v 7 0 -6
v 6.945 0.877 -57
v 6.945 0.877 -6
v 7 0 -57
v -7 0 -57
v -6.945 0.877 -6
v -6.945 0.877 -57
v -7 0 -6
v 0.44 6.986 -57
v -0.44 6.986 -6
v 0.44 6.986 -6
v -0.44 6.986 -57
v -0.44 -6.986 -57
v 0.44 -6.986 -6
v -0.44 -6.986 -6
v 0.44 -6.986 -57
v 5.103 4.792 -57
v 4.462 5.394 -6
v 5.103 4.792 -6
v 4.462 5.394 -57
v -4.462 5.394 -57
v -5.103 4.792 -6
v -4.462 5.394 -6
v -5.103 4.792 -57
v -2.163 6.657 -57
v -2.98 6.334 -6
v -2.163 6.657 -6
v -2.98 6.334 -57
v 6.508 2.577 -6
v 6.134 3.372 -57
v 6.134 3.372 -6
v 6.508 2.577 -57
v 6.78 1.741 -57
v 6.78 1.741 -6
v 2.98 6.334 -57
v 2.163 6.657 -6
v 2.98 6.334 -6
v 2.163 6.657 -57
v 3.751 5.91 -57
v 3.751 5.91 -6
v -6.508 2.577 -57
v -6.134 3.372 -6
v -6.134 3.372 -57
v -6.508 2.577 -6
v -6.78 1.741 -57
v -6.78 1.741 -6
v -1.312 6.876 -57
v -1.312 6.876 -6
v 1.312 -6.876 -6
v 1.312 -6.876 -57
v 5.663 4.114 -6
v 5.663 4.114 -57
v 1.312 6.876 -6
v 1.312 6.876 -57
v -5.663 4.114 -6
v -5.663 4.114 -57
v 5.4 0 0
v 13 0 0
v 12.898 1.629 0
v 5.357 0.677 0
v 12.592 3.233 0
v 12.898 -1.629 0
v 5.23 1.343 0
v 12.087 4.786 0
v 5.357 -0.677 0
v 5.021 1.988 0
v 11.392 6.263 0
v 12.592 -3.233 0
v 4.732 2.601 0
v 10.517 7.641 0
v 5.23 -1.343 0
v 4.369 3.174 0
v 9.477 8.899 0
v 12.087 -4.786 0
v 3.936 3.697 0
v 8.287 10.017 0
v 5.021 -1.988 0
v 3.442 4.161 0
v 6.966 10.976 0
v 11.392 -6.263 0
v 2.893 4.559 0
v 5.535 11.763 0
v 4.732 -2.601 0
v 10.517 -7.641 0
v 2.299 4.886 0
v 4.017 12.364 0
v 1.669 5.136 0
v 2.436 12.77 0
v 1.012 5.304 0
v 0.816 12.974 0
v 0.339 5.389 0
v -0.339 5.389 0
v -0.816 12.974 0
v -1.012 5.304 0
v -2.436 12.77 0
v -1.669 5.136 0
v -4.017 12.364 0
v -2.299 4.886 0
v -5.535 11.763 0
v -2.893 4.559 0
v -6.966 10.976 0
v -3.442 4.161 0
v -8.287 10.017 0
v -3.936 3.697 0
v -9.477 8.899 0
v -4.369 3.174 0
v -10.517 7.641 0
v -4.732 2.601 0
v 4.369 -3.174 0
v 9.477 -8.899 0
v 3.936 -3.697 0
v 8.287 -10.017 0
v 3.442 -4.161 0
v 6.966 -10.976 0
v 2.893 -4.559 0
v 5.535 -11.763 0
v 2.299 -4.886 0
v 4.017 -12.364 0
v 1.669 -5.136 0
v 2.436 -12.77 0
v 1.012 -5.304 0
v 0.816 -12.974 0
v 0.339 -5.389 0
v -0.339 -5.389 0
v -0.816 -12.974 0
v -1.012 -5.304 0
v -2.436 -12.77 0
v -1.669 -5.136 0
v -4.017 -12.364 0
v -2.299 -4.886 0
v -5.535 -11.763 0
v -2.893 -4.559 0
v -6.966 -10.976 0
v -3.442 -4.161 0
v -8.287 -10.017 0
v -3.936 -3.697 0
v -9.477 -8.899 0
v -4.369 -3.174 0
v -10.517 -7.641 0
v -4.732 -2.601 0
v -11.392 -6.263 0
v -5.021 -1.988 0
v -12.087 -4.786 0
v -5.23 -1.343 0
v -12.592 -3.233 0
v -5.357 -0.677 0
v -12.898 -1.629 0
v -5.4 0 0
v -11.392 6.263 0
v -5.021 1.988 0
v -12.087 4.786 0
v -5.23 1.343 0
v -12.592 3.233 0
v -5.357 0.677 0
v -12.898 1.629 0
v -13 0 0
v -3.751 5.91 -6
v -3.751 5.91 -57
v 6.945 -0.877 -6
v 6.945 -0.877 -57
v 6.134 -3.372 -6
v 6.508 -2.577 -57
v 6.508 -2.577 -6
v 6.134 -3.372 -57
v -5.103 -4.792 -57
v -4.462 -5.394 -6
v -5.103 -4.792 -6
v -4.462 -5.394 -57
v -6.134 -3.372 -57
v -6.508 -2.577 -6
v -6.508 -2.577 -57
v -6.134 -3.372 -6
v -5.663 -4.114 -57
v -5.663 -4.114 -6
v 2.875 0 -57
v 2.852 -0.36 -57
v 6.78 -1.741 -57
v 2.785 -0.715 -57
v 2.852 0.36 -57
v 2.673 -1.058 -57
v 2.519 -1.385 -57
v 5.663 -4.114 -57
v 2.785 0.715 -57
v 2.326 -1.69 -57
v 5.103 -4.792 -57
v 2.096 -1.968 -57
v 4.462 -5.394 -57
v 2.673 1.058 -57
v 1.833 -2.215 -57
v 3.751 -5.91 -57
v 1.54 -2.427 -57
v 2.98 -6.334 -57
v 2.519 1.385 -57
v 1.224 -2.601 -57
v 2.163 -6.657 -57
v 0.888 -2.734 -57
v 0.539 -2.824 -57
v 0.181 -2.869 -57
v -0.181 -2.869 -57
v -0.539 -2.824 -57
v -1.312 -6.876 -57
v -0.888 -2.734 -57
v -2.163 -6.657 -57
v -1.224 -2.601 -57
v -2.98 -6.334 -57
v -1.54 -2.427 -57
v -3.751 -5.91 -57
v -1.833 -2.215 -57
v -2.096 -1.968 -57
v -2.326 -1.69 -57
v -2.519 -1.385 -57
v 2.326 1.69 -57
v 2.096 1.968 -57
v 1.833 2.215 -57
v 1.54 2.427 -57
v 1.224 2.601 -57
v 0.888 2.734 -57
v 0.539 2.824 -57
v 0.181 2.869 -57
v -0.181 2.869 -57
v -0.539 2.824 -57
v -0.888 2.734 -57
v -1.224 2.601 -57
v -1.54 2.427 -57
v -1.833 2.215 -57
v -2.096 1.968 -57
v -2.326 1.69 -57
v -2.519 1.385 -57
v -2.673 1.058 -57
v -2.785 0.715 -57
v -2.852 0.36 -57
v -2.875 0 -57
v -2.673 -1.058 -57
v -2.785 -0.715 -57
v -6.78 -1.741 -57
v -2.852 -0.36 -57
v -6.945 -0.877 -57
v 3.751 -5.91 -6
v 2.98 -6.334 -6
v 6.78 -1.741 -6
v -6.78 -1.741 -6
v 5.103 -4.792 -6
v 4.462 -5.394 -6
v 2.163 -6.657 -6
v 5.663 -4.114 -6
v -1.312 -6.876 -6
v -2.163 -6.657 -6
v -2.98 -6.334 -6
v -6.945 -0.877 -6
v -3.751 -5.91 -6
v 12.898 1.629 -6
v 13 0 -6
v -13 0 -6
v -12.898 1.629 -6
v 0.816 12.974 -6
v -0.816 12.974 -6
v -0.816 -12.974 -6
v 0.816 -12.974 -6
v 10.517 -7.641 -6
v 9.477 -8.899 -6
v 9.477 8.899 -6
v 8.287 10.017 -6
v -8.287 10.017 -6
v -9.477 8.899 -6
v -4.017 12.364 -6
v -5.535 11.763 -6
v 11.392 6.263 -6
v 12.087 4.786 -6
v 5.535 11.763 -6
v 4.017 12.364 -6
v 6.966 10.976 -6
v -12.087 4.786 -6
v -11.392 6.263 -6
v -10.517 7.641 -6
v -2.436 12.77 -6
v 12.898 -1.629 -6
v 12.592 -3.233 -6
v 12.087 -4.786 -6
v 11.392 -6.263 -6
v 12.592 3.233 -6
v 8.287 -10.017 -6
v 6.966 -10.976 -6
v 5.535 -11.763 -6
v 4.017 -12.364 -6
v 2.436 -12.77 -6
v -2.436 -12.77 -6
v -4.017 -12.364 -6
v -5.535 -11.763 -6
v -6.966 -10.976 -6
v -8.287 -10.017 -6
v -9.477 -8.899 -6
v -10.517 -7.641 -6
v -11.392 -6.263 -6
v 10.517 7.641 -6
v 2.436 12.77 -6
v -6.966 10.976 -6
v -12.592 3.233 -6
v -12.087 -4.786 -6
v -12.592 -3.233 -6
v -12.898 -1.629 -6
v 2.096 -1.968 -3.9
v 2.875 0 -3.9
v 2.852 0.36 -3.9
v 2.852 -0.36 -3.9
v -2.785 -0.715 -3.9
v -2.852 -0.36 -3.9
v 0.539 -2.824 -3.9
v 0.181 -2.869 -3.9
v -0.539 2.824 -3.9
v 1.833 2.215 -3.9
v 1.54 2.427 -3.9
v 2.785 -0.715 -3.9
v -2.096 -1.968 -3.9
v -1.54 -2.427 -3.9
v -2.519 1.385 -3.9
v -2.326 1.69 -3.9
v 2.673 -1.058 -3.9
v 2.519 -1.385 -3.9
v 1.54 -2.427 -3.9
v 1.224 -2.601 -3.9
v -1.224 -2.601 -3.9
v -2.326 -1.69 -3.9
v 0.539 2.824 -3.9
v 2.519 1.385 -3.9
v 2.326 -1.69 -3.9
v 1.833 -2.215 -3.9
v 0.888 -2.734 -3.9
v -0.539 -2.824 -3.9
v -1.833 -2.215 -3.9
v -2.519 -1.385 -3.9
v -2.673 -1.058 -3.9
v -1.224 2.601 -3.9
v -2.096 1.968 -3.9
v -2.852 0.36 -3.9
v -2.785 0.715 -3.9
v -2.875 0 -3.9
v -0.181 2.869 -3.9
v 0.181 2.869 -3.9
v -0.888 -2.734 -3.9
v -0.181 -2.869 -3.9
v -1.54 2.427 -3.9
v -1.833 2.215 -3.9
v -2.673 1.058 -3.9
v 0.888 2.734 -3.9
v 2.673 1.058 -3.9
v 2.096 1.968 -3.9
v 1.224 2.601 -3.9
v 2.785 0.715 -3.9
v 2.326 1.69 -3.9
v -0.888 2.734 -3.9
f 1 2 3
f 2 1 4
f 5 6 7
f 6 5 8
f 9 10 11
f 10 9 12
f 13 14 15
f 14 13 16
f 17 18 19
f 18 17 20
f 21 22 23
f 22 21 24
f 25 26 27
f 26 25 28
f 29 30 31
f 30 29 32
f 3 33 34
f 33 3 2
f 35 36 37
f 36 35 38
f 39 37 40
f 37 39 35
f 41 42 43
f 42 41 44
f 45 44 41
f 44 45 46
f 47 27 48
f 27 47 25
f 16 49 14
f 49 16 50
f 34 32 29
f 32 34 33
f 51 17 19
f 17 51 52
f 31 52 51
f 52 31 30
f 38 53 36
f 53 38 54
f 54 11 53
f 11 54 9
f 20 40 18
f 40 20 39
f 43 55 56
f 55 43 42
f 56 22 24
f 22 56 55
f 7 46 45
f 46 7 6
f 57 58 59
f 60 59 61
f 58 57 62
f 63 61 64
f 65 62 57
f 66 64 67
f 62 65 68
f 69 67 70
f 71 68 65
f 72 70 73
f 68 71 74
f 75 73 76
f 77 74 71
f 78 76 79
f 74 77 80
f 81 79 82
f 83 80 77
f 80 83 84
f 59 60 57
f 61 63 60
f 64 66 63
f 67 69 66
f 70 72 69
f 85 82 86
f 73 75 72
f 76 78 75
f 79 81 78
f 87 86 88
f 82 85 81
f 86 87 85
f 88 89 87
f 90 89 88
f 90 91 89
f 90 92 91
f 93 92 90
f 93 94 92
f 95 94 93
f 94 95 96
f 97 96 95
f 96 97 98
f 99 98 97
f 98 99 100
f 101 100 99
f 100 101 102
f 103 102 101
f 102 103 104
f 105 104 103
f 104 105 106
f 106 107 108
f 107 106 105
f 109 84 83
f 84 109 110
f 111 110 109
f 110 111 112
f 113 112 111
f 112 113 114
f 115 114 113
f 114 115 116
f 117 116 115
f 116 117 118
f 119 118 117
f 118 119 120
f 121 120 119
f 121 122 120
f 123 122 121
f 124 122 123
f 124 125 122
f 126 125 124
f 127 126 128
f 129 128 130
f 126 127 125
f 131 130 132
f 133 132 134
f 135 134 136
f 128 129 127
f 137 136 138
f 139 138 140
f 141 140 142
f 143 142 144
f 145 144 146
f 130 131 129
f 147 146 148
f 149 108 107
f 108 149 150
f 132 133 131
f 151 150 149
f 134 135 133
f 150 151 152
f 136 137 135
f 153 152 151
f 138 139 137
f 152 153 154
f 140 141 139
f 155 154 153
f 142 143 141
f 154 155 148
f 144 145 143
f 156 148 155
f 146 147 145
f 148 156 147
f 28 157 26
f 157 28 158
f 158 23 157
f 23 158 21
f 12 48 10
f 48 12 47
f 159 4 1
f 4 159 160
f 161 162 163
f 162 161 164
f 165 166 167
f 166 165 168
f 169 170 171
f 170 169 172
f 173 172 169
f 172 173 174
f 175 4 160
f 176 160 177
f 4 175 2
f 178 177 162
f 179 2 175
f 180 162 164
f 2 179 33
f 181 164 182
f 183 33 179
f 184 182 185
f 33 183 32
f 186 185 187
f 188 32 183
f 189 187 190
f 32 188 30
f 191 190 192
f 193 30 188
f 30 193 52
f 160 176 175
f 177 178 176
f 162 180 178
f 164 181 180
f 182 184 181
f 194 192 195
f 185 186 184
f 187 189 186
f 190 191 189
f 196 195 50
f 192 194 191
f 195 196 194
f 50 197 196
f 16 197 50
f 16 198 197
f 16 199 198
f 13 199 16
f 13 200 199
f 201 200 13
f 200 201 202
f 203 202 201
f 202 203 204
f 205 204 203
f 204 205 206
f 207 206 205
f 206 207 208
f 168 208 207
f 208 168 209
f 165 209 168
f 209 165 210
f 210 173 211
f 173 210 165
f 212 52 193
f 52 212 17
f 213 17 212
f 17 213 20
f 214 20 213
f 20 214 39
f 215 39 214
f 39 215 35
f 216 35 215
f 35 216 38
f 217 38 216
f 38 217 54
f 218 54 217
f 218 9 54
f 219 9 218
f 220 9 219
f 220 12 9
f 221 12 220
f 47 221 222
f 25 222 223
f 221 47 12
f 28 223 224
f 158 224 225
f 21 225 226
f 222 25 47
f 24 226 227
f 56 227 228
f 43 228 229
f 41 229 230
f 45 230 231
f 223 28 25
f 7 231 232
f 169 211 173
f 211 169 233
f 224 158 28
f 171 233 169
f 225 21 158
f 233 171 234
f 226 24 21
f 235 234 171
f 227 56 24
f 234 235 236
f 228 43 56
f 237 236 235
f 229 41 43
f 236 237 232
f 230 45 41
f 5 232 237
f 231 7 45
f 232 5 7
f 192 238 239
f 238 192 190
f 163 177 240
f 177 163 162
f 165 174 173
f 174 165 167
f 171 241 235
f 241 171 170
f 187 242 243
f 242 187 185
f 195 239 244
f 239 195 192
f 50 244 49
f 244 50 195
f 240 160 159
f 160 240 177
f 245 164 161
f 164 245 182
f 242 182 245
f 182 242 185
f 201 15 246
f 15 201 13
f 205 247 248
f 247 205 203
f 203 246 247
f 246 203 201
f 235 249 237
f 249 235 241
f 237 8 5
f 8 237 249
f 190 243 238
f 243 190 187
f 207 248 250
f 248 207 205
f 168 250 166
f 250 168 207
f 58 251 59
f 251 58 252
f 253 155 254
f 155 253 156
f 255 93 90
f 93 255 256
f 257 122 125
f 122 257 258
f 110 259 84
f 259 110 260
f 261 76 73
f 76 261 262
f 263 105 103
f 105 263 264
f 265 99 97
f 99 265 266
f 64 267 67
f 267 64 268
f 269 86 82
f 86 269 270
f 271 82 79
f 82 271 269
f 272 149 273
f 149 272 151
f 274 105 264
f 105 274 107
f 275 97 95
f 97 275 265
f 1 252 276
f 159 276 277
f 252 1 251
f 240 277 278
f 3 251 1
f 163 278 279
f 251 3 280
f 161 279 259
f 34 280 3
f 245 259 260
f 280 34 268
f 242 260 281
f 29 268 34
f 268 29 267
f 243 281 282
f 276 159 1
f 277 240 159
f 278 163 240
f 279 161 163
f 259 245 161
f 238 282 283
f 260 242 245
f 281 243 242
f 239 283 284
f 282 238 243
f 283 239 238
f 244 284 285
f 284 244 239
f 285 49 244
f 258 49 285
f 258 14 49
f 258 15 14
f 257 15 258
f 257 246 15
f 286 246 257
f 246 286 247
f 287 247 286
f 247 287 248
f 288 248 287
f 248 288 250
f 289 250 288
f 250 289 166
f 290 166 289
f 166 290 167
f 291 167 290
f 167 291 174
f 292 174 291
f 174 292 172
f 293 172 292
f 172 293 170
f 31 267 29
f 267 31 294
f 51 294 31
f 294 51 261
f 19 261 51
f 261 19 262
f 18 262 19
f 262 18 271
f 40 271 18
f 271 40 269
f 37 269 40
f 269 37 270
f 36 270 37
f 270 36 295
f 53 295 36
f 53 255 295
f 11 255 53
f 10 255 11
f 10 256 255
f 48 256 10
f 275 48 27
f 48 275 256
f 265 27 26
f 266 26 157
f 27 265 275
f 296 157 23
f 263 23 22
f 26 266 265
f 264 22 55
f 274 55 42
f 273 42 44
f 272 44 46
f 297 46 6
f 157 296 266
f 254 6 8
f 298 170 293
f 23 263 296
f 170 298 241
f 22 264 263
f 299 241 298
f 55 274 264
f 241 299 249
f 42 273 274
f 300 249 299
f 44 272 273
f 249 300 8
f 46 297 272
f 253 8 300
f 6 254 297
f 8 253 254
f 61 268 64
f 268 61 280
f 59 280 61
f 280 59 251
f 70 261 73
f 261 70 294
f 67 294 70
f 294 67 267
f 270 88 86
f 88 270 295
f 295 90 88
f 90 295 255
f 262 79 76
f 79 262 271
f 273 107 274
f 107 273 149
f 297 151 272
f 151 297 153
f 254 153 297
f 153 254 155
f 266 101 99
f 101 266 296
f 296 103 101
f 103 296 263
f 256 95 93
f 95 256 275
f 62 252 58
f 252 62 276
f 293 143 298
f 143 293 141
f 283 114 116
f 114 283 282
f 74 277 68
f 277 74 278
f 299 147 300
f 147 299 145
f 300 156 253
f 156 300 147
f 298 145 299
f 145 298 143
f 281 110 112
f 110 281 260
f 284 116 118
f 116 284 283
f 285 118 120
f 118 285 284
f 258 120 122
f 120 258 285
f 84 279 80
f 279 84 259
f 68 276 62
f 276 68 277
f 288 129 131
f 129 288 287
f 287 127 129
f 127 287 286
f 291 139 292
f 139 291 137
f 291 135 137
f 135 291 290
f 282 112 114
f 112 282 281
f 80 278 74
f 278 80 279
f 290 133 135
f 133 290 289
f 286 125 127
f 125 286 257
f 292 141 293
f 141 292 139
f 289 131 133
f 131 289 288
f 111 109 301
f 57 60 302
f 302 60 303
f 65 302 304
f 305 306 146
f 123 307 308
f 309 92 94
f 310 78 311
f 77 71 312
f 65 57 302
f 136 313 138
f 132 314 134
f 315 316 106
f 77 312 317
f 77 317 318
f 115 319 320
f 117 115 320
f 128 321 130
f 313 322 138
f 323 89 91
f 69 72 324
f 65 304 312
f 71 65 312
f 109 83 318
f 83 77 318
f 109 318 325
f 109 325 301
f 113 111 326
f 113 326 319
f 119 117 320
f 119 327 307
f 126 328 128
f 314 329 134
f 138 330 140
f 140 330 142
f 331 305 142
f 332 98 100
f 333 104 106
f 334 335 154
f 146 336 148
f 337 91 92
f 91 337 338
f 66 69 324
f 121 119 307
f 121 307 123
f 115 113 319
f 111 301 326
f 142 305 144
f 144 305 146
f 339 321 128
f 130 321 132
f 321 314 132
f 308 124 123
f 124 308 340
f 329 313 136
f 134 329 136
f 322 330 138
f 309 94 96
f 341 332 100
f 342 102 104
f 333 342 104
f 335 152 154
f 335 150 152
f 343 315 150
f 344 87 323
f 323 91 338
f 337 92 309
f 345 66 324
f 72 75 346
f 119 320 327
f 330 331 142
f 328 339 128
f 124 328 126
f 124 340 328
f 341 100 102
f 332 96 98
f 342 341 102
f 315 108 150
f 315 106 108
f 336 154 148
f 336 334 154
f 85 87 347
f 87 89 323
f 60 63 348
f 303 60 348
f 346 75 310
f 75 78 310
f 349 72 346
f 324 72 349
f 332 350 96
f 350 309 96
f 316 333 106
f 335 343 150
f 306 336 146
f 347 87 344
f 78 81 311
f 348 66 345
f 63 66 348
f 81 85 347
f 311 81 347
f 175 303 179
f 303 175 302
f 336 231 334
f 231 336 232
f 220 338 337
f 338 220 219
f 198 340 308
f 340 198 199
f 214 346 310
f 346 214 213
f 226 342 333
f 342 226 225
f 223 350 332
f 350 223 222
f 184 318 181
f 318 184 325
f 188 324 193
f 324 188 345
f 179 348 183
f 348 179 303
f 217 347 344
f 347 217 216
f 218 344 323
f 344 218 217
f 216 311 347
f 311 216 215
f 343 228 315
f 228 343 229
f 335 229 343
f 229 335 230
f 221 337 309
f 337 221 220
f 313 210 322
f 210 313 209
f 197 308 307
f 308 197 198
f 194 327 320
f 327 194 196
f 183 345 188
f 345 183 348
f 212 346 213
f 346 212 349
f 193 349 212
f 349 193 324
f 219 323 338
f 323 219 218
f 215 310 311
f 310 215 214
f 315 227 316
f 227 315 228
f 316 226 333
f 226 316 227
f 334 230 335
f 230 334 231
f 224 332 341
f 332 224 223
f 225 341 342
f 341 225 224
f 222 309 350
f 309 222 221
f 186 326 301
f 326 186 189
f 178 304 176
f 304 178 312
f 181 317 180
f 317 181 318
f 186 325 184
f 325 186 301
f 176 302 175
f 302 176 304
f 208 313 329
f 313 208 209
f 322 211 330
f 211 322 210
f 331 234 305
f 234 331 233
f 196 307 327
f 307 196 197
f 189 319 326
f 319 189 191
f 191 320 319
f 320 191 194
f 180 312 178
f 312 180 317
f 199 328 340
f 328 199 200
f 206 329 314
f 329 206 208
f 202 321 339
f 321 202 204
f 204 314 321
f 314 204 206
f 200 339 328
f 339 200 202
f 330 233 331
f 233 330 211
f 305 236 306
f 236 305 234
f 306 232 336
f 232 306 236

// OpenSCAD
$fn = 50;


difference() {
	union() {
		translate(v = [0, 0, -57.0000000000]) {
			cylinder(h = 57, r = 7.0000000000);
		}
		translate(v = [0, 0, -6.0000000000]) {
			cylinder(h = 6, r = 13.0000000000);
		}
	}
	union() {
		translate(v = [0, 0, 0]) {
			rotate(a = [0, 0, 0]) {
				difference() {
					union() {
						#translate(v = [0, 0, -57.0000000000]) {
							cylinder(h = 57, r = 2.6000000000);
						}
						#translate(v = [0, 0, -3.9000000000]) {
							cylinder(h = 3.9000000000, r1 = 2.8750000000, r2 = 5.4000000000);
						}
						#translate(v = [0, 0, -57.0000000000]) {
							cylinder(h = 57, r = 2.8750000000);
						}
						#translate(v = [0, 0, -57.0000000000]) {
							cylinder(h = 57, r = 2.6000000000);
						}
					}
					union();
				}
			}
		}
	}
}
